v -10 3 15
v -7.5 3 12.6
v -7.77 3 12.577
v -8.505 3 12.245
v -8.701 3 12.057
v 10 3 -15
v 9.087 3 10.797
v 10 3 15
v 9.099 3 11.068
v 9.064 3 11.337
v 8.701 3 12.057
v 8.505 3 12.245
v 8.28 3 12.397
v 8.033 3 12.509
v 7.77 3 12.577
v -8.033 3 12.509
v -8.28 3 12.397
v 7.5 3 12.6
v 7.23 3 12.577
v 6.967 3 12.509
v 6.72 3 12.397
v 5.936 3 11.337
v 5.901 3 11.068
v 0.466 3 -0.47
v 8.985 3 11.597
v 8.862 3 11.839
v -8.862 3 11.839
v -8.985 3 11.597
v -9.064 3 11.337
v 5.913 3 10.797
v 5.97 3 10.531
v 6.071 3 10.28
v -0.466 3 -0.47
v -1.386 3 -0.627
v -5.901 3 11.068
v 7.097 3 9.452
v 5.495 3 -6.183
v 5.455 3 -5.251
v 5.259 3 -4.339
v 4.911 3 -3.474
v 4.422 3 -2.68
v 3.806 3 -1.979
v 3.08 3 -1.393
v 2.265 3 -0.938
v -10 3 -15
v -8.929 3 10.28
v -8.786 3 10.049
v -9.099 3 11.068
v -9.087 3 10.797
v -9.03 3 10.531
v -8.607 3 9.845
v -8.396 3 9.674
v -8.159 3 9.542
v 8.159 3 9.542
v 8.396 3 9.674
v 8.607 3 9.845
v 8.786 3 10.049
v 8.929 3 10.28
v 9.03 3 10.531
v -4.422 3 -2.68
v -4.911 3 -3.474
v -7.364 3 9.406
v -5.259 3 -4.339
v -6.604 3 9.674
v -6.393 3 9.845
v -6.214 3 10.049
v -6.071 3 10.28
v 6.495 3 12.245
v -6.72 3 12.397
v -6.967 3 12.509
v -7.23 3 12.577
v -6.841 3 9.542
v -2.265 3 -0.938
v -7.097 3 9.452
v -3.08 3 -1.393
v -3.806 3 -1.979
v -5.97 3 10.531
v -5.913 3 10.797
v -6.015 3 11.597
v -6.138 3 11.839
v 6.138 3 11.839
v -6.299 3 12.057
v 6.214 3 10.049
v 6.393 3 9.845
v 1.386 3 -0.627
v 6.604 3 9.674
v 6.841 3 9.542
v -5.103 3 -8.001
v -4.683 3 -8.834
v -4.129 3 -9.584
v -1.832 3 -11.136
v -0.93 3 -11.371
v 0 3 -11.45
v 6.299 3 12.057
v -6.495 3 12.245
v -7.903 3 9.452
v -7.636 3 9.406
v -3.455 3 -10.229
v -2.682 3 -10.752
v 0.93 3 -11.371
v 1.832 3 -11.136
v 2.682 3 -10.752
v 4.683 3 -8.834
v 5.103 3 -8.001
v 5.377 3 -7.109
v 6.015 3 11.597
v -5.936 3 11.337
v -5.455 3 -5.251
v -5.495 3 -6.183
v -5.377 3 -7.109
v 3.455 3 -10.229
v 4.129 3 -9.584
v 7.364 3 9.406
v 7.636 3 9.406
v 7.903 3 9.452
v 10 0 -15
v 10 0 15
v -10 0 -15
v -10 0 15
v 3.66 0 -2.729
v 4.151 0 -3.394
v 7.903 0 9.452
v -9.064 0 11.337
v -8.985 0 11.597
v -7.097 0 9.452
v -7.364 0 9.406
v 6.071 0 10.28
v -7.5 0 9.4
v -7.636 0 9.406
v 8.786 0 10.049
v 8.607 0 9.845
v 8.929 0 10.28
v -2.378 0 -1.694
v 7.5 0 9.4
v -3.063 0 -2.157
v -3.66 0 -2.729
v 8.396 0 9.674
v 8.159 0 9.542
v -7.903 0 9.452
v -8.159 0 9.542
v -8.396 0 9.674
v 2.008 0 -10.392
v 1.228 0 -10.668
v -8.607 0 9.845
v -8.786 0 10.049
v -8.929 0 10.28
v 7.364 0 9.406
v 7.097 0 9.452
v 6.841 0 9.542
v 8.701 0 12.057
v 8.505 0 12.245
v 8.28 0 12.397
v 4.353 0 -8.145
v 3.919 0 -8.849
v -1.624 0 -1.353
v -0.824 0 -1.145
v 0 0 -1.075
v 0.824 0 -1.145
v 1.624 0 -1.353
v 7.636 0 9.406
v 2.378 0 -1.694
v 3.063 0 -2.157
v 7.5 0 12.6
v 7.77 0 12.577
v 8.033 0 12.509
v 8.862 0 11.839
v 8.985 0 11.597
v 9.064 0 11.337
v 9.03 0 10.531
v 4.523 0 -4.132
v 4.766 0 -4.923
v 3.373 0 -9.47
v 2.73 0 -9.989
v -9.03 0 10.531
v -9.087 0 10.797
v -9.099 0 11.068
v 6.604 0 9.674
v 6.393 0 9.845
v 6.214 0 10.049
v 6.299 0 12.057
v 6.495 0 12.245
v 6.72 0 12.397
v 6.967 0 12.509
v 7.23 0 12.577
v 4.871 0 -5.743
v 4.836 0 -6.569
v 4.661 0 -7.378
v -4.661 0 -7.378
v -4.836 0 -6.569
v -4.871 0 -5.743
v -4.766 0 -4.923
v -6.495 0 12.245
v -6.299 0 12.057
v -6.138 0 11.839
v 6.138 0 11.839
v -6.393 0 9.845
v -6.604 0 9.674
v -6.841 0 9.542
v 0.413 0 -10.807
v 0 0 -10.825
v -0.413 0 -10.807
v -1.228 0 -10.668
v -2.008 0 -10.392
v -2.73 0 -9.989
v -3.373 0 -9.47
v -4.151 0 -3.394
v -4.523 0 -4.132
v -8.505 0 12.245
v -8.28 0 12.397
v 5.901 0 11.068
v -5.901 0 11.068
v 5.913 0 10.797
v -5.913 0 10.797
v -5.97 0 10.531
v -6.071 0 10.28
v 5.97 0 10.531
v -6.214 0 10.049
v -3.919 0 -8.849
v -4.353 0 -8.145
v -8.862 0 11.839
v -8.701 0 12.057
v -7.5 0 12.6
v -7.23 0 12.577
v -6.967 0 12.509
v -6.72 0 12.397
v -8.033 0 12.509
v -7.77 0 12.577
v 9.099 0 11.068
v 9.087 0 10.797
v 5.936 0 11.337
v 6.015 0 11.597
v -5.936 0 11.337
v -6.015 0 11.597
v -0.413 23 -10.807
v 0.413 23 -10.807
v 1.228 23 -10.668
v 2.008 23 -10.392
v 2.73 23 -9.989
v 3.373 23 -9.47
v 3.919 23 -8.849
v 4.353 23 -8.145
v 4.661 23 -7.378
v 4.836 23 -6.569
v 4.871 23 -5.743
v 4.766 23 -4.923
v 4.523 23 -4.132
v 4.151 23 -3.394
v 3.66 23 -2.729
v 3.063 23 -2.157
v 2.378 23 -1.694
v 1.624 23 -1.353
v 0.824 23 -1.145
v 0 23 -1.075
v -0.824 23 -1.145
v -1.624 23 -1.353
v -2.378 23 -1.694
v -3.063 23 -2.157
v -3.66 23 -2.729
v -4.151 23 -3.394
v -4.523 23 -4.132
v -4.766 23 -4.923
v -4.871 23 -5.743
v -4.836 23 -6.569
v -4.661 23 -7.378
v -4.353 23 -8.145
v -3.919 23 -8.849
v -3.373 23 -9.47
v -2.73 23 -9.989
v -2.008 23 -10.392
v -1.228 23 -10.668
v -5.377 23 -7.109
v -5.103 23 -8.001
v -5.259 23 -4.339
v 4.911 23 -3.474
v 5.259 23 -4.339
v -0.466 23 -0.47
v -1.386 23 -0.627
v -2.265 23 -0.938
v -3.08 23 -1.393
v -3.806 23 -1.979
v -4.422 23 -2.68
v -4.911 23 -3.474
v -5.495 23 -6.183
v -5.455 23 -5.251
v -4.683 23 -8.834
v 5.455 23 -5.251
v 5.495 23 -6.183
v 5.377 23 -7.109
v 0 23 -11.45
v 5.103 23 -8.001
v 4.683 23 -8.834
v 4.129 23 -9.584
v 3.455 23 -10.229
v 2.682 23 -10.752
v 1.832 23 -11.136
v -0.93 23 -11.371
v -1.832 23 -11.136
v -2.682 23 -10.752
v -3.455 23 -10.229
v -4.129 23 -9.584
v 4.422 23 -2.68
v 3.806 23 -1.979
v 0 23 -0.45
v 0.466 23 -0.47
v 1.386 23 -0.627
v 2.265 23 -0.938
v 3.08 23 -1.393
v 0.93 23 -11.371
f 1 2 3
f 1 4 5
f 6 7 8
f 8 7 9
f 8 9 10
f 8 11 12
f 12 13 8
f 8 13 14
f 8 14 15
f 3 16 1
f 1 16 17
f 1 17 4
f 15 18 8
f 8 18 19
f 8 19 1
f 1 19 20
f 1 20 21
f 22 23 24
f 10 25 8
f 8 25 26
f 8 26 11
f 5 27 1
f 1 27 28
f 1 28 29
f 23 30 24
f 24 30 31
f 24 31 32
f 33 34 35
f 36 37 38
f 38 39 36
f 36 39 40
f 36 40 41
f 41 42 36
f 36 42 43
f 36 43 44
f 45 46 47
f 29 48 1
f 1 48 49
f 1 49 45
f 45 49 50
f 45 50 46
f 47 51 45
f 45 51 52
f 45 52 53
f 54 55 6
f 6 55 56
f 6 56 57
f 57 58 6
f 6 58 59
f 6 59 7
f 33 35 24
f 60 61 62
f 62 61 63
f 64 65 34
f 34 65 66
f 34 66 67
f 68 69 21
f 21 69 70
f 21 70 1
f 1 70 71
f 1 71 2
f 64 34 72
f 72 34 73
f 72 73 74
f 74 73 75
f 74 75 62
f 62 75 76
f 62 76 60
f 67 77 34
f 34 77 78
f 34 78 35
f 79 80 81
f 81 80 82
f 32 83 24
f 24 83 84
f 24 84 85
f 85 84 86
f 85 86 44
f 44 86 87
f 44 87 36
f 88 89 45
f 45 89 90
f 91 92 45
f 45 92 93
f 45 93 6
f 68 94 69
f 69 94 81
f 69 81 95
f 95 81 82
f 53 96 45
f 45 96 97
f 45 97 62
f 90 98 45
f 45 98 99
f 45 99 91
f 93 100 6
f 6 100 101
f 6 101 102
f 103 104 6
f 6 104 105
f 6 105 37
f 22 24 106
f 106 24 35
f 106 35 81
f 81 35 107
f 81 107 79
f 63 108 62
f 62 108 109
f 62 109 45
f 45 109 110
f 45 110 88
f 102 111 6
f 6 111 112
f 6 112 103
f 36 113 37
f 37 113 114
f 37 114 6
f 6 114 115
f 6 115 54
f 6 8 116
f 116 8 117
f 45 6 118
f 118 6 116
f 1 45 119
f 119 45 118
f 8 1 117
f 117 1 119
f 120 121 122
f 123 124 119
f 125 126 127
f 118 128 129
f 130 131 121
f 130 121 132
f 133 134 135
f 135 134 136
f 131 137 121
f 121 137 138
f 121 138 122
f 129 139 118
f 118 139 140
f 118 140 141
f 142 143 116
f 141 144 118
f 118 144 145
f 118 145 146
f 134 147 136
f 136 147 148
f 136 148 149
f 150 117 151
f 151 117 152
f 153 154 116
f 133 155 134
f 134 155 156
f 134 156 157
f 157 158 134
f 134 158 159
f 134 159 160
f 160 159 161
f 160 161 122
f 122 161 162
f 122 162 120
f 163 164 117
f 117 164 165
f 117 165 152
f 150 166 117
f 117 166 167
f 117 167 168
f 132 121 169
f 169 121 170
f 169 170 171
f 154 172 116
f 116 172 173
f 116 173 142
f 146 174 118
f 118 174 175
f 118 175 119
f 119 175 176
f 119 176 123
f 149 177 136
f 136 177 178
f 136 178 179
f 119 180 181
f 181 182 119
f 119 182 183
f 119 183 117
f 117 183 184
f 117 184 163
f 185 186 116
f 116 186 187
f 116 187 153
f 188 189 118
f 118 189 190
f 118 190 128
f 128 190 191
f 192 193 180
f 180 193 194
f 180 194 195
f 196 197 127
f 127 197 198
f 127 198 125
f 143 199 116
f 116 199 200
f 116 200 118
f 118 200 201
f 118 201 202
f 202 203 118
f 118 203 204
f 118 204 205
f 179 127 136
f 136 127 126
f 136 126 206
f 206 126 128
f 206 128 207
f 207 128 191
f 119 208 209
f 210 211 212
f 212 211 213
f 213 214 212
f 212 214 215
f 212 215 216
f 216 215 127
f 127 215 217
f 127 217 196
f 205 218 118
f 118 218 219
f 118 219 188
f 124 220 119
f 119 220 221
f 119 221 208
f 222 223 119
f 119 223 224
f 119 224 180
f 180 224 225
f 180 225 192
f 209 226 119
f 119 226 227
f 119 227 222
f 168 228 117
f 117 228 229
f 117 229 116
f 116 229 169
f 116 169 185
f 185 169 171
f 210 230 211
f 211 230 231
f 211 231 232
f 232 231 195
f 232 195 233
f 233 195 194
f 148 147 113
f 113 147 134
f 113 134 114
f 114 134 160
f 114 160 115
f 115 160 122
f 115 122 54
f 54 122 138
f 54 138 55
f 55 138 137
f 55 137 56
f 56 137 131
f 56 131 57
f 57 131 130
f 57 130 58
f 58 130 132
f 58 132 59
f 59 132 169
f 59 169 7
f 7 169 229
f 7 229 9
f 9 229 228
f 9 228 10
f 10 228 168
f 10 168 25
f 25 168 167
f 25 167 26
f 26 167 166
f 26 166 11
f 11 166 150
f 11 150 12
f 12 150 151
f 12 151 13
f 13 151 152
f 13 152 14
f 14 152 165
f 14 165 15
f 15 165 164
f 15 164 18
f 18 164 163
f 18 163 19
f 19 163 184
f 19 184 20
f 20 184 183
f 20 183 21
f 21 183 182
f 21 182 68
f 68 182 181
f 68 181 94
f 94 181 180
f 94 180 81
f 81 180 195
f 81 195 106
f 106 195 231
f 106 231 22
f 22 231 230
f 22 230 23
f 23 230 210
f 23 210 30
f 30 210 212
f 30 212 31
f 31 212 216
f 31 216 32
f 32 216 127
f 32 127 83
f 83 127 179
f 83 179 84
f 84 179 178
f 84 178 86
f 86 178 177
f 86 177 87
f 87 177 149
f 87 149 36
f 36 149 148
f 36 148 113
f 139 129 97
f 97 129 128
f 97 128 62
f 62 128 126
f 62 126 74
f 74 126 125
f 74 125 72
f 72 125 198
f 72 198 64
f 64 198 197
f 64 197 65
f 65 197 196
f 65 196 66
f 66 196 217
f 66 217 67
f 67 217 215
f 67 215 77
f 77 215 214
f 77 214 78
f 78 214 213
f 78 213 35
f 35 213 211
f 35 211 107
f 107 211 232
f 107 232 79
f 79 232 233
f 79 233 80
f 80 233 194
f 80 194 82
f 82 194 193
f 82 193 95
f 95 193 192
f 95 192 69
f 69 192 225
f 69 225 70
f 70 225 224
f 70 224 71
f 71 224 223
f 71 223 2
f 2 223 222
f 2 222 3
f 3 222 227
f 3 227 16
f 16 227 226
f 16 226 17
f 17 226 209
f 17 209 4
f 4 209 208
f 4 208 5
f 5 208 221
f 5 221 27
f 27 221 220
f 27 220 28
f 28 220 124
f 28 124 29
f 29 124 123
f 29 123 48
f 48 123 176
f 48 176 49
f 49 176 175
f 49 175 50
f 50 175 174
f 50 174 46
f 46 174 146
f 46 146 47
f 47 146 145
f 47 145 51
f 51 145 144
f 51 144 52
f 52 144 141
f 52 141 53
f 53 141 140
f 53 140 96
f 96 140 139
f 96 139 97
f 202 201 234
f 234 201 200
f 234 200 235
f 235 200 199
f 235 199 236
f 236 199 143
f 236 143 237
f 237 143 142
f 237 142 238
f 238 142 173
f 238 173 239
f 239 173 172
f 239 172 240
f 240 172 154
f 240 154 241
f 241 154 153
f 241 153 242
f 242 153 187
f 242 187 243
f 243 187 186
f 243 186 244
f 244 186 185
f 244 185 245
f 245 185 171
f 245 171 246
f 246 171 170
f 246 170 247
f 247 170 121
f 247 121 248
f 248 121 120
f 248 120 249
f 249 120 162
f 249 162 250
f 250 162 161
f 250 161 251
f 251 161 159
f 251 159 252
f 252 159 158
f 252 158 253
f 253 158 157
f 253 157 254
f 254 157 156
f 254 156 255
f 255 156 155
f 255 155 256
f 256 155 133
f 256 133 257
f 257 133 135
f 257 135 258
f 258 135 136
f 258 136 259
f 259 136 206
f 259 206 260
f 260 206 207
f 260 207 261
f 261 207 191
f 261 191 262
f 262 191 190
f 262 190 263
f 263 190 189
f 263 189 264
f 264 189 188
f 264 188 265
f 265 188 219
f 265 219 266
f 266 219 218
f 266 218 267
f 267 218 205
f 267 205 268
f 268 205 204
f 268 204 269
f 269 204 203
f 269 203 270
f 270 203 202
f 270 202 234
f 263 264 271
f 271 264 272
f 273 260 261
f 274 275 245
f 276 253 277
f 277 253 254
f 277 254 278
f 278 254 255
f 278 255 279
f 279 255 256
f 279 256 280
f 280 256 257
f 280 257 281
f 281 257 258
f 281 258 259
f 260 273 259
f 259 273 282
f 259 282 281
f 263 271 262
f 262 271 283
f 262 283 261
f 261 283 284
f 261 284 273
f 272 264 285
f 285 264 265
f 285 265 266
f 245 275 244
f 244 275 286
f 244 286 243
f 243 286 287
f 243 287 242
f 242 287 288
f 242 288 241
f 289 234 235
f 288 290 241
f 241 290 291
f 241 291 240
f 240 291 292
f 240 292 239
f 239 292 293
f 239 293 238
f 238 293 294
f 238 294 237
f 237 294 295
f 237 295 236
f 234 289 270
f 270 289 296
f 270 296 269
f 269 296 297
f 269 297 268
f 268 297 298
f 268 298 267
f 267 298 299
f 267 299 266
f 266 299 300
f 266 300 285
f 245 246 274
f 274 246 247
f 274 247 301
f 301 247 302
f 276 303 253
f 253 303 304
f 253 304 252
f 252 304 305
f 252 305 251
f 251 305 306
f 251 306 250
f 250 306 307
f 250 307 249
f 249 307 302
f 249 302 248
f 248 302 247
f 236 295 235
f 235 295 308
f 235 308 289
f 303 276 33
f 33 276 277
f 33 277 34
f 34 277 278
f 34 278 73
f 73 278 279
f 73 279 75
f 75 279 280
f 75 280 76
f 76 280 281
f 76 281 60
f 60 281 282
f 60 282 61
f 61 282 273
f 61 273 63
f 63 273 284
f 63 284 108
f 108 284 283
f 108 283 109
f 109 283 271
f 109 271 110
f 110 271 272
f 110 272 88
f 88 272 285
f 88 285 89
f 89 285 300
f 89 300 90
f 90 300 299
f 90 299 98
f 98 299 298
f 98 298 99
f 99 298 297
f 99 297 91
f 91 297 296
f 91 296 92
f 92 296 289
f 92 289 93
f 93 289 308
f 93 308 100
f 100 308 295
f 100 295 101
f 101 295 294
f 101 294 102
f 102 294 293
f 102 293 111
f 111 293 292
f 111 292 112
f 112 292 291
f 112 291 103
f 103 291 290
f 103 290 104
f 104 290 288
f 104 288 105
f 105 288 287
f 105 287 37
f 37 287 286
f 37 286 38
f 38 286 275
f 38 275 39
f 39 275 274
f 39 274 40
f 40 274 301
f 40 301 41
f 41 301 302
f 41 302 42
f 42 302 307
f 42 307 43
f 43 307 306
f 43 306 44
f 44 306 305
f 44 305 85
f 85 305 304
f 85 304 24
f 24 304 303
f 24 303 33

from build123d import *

# Parameters (mm, degrees)
SKETCH1_W                = 20
SKETCH1_H                = 30
BOSS_EXTRUDE1_DEPTH      = 3
M3_CLEARANCE_HOLE1_D     = 3.2
M3_CLEARANCE_HOLE1_DEPTH = 5
M3_CLEARANCE_HOLE1_TIP   = 0.96137699
SKETCH4_R                = 4.875
CUT_EXTRUDE1_DEPTH       = 3
BOSS_EXTRUDE2_START      = 20
SKETCH5_R                = 5.5
SKETCH5_R_2              = 4.875
BOSS_EXTRUDE2_DEPTH      = 20


with BuildPart() as part:
    # Sketch1 → Boss-Extrude1 (new body)
    with BuildSketch(Plane(origin=(0, 0, 0), x_dir=(1, 0, 0), z_dir=(0, 1, 0))):
        Rectangle(SKETCH1_W, SKETCH1_H)
    extrude(amount=BOSS_EXTRUDE1_DEPTH)

    # M3 Clearance Hole1
    with Locations(Plane(origin=(-7.5, 3, 11), x_dir=(0, 0, 1), z_dir=(0, 1, 0))):
        with Locations((0, 0), (0, 15)):
            Hole(M3_CLEARANCE_HOLE1_D / 2, depth=M3_CLEARANCE_HOLE1_DEPTH)
            with Locations((0, 0, -(M3_CLEARANCE_HOLE1_DEPTH + M3_CLEARANCE_HOLE1_TIP / 2))):  # 118° drill point
                Cone(0, M3_CLEARANCE_HOLE1_D / 2, M3_CLEARANCE_HOLE1_TIP, mode=Mode.SUBTRACT)

    # Sketch4 → Cut-Extrude1 (cut)
    with BuildSketch(Plane(origin=(0, 3, 0), x_dir=(1, 0, 0), z_dir=(0, 1, 0))):
        with Locations(Location((0, 5.95, 0), (0, 0, 270))):
            Circle(SKETCH4_R)
    extrude(amount=-CUT_EXTRUDE1_DEPTH, mode=Mode.SUBTRACT)

    # Sketch5 → Boss-Extrude2 (add)
    with BuildSketch(Plane(origin=(0, 3, 0), x_dir=(1, 0, 0), z_dir=(0, 1, 0)).offset(BOSS_EXTRUDE2_START)):
        with Locations(Location((0, 5.95, 0), (0, 0, 90))):
            Circle(SKETCH5_R)
        with Locations(Location((0, 5.95, 0), (0, 0, 270))):
            Circle(SKETCH5_R_2, mode=Mode.SUBTRACT)
    extrude(amount=-BOSS_EXTRUDE2_DEPTH)


solid = part.part
